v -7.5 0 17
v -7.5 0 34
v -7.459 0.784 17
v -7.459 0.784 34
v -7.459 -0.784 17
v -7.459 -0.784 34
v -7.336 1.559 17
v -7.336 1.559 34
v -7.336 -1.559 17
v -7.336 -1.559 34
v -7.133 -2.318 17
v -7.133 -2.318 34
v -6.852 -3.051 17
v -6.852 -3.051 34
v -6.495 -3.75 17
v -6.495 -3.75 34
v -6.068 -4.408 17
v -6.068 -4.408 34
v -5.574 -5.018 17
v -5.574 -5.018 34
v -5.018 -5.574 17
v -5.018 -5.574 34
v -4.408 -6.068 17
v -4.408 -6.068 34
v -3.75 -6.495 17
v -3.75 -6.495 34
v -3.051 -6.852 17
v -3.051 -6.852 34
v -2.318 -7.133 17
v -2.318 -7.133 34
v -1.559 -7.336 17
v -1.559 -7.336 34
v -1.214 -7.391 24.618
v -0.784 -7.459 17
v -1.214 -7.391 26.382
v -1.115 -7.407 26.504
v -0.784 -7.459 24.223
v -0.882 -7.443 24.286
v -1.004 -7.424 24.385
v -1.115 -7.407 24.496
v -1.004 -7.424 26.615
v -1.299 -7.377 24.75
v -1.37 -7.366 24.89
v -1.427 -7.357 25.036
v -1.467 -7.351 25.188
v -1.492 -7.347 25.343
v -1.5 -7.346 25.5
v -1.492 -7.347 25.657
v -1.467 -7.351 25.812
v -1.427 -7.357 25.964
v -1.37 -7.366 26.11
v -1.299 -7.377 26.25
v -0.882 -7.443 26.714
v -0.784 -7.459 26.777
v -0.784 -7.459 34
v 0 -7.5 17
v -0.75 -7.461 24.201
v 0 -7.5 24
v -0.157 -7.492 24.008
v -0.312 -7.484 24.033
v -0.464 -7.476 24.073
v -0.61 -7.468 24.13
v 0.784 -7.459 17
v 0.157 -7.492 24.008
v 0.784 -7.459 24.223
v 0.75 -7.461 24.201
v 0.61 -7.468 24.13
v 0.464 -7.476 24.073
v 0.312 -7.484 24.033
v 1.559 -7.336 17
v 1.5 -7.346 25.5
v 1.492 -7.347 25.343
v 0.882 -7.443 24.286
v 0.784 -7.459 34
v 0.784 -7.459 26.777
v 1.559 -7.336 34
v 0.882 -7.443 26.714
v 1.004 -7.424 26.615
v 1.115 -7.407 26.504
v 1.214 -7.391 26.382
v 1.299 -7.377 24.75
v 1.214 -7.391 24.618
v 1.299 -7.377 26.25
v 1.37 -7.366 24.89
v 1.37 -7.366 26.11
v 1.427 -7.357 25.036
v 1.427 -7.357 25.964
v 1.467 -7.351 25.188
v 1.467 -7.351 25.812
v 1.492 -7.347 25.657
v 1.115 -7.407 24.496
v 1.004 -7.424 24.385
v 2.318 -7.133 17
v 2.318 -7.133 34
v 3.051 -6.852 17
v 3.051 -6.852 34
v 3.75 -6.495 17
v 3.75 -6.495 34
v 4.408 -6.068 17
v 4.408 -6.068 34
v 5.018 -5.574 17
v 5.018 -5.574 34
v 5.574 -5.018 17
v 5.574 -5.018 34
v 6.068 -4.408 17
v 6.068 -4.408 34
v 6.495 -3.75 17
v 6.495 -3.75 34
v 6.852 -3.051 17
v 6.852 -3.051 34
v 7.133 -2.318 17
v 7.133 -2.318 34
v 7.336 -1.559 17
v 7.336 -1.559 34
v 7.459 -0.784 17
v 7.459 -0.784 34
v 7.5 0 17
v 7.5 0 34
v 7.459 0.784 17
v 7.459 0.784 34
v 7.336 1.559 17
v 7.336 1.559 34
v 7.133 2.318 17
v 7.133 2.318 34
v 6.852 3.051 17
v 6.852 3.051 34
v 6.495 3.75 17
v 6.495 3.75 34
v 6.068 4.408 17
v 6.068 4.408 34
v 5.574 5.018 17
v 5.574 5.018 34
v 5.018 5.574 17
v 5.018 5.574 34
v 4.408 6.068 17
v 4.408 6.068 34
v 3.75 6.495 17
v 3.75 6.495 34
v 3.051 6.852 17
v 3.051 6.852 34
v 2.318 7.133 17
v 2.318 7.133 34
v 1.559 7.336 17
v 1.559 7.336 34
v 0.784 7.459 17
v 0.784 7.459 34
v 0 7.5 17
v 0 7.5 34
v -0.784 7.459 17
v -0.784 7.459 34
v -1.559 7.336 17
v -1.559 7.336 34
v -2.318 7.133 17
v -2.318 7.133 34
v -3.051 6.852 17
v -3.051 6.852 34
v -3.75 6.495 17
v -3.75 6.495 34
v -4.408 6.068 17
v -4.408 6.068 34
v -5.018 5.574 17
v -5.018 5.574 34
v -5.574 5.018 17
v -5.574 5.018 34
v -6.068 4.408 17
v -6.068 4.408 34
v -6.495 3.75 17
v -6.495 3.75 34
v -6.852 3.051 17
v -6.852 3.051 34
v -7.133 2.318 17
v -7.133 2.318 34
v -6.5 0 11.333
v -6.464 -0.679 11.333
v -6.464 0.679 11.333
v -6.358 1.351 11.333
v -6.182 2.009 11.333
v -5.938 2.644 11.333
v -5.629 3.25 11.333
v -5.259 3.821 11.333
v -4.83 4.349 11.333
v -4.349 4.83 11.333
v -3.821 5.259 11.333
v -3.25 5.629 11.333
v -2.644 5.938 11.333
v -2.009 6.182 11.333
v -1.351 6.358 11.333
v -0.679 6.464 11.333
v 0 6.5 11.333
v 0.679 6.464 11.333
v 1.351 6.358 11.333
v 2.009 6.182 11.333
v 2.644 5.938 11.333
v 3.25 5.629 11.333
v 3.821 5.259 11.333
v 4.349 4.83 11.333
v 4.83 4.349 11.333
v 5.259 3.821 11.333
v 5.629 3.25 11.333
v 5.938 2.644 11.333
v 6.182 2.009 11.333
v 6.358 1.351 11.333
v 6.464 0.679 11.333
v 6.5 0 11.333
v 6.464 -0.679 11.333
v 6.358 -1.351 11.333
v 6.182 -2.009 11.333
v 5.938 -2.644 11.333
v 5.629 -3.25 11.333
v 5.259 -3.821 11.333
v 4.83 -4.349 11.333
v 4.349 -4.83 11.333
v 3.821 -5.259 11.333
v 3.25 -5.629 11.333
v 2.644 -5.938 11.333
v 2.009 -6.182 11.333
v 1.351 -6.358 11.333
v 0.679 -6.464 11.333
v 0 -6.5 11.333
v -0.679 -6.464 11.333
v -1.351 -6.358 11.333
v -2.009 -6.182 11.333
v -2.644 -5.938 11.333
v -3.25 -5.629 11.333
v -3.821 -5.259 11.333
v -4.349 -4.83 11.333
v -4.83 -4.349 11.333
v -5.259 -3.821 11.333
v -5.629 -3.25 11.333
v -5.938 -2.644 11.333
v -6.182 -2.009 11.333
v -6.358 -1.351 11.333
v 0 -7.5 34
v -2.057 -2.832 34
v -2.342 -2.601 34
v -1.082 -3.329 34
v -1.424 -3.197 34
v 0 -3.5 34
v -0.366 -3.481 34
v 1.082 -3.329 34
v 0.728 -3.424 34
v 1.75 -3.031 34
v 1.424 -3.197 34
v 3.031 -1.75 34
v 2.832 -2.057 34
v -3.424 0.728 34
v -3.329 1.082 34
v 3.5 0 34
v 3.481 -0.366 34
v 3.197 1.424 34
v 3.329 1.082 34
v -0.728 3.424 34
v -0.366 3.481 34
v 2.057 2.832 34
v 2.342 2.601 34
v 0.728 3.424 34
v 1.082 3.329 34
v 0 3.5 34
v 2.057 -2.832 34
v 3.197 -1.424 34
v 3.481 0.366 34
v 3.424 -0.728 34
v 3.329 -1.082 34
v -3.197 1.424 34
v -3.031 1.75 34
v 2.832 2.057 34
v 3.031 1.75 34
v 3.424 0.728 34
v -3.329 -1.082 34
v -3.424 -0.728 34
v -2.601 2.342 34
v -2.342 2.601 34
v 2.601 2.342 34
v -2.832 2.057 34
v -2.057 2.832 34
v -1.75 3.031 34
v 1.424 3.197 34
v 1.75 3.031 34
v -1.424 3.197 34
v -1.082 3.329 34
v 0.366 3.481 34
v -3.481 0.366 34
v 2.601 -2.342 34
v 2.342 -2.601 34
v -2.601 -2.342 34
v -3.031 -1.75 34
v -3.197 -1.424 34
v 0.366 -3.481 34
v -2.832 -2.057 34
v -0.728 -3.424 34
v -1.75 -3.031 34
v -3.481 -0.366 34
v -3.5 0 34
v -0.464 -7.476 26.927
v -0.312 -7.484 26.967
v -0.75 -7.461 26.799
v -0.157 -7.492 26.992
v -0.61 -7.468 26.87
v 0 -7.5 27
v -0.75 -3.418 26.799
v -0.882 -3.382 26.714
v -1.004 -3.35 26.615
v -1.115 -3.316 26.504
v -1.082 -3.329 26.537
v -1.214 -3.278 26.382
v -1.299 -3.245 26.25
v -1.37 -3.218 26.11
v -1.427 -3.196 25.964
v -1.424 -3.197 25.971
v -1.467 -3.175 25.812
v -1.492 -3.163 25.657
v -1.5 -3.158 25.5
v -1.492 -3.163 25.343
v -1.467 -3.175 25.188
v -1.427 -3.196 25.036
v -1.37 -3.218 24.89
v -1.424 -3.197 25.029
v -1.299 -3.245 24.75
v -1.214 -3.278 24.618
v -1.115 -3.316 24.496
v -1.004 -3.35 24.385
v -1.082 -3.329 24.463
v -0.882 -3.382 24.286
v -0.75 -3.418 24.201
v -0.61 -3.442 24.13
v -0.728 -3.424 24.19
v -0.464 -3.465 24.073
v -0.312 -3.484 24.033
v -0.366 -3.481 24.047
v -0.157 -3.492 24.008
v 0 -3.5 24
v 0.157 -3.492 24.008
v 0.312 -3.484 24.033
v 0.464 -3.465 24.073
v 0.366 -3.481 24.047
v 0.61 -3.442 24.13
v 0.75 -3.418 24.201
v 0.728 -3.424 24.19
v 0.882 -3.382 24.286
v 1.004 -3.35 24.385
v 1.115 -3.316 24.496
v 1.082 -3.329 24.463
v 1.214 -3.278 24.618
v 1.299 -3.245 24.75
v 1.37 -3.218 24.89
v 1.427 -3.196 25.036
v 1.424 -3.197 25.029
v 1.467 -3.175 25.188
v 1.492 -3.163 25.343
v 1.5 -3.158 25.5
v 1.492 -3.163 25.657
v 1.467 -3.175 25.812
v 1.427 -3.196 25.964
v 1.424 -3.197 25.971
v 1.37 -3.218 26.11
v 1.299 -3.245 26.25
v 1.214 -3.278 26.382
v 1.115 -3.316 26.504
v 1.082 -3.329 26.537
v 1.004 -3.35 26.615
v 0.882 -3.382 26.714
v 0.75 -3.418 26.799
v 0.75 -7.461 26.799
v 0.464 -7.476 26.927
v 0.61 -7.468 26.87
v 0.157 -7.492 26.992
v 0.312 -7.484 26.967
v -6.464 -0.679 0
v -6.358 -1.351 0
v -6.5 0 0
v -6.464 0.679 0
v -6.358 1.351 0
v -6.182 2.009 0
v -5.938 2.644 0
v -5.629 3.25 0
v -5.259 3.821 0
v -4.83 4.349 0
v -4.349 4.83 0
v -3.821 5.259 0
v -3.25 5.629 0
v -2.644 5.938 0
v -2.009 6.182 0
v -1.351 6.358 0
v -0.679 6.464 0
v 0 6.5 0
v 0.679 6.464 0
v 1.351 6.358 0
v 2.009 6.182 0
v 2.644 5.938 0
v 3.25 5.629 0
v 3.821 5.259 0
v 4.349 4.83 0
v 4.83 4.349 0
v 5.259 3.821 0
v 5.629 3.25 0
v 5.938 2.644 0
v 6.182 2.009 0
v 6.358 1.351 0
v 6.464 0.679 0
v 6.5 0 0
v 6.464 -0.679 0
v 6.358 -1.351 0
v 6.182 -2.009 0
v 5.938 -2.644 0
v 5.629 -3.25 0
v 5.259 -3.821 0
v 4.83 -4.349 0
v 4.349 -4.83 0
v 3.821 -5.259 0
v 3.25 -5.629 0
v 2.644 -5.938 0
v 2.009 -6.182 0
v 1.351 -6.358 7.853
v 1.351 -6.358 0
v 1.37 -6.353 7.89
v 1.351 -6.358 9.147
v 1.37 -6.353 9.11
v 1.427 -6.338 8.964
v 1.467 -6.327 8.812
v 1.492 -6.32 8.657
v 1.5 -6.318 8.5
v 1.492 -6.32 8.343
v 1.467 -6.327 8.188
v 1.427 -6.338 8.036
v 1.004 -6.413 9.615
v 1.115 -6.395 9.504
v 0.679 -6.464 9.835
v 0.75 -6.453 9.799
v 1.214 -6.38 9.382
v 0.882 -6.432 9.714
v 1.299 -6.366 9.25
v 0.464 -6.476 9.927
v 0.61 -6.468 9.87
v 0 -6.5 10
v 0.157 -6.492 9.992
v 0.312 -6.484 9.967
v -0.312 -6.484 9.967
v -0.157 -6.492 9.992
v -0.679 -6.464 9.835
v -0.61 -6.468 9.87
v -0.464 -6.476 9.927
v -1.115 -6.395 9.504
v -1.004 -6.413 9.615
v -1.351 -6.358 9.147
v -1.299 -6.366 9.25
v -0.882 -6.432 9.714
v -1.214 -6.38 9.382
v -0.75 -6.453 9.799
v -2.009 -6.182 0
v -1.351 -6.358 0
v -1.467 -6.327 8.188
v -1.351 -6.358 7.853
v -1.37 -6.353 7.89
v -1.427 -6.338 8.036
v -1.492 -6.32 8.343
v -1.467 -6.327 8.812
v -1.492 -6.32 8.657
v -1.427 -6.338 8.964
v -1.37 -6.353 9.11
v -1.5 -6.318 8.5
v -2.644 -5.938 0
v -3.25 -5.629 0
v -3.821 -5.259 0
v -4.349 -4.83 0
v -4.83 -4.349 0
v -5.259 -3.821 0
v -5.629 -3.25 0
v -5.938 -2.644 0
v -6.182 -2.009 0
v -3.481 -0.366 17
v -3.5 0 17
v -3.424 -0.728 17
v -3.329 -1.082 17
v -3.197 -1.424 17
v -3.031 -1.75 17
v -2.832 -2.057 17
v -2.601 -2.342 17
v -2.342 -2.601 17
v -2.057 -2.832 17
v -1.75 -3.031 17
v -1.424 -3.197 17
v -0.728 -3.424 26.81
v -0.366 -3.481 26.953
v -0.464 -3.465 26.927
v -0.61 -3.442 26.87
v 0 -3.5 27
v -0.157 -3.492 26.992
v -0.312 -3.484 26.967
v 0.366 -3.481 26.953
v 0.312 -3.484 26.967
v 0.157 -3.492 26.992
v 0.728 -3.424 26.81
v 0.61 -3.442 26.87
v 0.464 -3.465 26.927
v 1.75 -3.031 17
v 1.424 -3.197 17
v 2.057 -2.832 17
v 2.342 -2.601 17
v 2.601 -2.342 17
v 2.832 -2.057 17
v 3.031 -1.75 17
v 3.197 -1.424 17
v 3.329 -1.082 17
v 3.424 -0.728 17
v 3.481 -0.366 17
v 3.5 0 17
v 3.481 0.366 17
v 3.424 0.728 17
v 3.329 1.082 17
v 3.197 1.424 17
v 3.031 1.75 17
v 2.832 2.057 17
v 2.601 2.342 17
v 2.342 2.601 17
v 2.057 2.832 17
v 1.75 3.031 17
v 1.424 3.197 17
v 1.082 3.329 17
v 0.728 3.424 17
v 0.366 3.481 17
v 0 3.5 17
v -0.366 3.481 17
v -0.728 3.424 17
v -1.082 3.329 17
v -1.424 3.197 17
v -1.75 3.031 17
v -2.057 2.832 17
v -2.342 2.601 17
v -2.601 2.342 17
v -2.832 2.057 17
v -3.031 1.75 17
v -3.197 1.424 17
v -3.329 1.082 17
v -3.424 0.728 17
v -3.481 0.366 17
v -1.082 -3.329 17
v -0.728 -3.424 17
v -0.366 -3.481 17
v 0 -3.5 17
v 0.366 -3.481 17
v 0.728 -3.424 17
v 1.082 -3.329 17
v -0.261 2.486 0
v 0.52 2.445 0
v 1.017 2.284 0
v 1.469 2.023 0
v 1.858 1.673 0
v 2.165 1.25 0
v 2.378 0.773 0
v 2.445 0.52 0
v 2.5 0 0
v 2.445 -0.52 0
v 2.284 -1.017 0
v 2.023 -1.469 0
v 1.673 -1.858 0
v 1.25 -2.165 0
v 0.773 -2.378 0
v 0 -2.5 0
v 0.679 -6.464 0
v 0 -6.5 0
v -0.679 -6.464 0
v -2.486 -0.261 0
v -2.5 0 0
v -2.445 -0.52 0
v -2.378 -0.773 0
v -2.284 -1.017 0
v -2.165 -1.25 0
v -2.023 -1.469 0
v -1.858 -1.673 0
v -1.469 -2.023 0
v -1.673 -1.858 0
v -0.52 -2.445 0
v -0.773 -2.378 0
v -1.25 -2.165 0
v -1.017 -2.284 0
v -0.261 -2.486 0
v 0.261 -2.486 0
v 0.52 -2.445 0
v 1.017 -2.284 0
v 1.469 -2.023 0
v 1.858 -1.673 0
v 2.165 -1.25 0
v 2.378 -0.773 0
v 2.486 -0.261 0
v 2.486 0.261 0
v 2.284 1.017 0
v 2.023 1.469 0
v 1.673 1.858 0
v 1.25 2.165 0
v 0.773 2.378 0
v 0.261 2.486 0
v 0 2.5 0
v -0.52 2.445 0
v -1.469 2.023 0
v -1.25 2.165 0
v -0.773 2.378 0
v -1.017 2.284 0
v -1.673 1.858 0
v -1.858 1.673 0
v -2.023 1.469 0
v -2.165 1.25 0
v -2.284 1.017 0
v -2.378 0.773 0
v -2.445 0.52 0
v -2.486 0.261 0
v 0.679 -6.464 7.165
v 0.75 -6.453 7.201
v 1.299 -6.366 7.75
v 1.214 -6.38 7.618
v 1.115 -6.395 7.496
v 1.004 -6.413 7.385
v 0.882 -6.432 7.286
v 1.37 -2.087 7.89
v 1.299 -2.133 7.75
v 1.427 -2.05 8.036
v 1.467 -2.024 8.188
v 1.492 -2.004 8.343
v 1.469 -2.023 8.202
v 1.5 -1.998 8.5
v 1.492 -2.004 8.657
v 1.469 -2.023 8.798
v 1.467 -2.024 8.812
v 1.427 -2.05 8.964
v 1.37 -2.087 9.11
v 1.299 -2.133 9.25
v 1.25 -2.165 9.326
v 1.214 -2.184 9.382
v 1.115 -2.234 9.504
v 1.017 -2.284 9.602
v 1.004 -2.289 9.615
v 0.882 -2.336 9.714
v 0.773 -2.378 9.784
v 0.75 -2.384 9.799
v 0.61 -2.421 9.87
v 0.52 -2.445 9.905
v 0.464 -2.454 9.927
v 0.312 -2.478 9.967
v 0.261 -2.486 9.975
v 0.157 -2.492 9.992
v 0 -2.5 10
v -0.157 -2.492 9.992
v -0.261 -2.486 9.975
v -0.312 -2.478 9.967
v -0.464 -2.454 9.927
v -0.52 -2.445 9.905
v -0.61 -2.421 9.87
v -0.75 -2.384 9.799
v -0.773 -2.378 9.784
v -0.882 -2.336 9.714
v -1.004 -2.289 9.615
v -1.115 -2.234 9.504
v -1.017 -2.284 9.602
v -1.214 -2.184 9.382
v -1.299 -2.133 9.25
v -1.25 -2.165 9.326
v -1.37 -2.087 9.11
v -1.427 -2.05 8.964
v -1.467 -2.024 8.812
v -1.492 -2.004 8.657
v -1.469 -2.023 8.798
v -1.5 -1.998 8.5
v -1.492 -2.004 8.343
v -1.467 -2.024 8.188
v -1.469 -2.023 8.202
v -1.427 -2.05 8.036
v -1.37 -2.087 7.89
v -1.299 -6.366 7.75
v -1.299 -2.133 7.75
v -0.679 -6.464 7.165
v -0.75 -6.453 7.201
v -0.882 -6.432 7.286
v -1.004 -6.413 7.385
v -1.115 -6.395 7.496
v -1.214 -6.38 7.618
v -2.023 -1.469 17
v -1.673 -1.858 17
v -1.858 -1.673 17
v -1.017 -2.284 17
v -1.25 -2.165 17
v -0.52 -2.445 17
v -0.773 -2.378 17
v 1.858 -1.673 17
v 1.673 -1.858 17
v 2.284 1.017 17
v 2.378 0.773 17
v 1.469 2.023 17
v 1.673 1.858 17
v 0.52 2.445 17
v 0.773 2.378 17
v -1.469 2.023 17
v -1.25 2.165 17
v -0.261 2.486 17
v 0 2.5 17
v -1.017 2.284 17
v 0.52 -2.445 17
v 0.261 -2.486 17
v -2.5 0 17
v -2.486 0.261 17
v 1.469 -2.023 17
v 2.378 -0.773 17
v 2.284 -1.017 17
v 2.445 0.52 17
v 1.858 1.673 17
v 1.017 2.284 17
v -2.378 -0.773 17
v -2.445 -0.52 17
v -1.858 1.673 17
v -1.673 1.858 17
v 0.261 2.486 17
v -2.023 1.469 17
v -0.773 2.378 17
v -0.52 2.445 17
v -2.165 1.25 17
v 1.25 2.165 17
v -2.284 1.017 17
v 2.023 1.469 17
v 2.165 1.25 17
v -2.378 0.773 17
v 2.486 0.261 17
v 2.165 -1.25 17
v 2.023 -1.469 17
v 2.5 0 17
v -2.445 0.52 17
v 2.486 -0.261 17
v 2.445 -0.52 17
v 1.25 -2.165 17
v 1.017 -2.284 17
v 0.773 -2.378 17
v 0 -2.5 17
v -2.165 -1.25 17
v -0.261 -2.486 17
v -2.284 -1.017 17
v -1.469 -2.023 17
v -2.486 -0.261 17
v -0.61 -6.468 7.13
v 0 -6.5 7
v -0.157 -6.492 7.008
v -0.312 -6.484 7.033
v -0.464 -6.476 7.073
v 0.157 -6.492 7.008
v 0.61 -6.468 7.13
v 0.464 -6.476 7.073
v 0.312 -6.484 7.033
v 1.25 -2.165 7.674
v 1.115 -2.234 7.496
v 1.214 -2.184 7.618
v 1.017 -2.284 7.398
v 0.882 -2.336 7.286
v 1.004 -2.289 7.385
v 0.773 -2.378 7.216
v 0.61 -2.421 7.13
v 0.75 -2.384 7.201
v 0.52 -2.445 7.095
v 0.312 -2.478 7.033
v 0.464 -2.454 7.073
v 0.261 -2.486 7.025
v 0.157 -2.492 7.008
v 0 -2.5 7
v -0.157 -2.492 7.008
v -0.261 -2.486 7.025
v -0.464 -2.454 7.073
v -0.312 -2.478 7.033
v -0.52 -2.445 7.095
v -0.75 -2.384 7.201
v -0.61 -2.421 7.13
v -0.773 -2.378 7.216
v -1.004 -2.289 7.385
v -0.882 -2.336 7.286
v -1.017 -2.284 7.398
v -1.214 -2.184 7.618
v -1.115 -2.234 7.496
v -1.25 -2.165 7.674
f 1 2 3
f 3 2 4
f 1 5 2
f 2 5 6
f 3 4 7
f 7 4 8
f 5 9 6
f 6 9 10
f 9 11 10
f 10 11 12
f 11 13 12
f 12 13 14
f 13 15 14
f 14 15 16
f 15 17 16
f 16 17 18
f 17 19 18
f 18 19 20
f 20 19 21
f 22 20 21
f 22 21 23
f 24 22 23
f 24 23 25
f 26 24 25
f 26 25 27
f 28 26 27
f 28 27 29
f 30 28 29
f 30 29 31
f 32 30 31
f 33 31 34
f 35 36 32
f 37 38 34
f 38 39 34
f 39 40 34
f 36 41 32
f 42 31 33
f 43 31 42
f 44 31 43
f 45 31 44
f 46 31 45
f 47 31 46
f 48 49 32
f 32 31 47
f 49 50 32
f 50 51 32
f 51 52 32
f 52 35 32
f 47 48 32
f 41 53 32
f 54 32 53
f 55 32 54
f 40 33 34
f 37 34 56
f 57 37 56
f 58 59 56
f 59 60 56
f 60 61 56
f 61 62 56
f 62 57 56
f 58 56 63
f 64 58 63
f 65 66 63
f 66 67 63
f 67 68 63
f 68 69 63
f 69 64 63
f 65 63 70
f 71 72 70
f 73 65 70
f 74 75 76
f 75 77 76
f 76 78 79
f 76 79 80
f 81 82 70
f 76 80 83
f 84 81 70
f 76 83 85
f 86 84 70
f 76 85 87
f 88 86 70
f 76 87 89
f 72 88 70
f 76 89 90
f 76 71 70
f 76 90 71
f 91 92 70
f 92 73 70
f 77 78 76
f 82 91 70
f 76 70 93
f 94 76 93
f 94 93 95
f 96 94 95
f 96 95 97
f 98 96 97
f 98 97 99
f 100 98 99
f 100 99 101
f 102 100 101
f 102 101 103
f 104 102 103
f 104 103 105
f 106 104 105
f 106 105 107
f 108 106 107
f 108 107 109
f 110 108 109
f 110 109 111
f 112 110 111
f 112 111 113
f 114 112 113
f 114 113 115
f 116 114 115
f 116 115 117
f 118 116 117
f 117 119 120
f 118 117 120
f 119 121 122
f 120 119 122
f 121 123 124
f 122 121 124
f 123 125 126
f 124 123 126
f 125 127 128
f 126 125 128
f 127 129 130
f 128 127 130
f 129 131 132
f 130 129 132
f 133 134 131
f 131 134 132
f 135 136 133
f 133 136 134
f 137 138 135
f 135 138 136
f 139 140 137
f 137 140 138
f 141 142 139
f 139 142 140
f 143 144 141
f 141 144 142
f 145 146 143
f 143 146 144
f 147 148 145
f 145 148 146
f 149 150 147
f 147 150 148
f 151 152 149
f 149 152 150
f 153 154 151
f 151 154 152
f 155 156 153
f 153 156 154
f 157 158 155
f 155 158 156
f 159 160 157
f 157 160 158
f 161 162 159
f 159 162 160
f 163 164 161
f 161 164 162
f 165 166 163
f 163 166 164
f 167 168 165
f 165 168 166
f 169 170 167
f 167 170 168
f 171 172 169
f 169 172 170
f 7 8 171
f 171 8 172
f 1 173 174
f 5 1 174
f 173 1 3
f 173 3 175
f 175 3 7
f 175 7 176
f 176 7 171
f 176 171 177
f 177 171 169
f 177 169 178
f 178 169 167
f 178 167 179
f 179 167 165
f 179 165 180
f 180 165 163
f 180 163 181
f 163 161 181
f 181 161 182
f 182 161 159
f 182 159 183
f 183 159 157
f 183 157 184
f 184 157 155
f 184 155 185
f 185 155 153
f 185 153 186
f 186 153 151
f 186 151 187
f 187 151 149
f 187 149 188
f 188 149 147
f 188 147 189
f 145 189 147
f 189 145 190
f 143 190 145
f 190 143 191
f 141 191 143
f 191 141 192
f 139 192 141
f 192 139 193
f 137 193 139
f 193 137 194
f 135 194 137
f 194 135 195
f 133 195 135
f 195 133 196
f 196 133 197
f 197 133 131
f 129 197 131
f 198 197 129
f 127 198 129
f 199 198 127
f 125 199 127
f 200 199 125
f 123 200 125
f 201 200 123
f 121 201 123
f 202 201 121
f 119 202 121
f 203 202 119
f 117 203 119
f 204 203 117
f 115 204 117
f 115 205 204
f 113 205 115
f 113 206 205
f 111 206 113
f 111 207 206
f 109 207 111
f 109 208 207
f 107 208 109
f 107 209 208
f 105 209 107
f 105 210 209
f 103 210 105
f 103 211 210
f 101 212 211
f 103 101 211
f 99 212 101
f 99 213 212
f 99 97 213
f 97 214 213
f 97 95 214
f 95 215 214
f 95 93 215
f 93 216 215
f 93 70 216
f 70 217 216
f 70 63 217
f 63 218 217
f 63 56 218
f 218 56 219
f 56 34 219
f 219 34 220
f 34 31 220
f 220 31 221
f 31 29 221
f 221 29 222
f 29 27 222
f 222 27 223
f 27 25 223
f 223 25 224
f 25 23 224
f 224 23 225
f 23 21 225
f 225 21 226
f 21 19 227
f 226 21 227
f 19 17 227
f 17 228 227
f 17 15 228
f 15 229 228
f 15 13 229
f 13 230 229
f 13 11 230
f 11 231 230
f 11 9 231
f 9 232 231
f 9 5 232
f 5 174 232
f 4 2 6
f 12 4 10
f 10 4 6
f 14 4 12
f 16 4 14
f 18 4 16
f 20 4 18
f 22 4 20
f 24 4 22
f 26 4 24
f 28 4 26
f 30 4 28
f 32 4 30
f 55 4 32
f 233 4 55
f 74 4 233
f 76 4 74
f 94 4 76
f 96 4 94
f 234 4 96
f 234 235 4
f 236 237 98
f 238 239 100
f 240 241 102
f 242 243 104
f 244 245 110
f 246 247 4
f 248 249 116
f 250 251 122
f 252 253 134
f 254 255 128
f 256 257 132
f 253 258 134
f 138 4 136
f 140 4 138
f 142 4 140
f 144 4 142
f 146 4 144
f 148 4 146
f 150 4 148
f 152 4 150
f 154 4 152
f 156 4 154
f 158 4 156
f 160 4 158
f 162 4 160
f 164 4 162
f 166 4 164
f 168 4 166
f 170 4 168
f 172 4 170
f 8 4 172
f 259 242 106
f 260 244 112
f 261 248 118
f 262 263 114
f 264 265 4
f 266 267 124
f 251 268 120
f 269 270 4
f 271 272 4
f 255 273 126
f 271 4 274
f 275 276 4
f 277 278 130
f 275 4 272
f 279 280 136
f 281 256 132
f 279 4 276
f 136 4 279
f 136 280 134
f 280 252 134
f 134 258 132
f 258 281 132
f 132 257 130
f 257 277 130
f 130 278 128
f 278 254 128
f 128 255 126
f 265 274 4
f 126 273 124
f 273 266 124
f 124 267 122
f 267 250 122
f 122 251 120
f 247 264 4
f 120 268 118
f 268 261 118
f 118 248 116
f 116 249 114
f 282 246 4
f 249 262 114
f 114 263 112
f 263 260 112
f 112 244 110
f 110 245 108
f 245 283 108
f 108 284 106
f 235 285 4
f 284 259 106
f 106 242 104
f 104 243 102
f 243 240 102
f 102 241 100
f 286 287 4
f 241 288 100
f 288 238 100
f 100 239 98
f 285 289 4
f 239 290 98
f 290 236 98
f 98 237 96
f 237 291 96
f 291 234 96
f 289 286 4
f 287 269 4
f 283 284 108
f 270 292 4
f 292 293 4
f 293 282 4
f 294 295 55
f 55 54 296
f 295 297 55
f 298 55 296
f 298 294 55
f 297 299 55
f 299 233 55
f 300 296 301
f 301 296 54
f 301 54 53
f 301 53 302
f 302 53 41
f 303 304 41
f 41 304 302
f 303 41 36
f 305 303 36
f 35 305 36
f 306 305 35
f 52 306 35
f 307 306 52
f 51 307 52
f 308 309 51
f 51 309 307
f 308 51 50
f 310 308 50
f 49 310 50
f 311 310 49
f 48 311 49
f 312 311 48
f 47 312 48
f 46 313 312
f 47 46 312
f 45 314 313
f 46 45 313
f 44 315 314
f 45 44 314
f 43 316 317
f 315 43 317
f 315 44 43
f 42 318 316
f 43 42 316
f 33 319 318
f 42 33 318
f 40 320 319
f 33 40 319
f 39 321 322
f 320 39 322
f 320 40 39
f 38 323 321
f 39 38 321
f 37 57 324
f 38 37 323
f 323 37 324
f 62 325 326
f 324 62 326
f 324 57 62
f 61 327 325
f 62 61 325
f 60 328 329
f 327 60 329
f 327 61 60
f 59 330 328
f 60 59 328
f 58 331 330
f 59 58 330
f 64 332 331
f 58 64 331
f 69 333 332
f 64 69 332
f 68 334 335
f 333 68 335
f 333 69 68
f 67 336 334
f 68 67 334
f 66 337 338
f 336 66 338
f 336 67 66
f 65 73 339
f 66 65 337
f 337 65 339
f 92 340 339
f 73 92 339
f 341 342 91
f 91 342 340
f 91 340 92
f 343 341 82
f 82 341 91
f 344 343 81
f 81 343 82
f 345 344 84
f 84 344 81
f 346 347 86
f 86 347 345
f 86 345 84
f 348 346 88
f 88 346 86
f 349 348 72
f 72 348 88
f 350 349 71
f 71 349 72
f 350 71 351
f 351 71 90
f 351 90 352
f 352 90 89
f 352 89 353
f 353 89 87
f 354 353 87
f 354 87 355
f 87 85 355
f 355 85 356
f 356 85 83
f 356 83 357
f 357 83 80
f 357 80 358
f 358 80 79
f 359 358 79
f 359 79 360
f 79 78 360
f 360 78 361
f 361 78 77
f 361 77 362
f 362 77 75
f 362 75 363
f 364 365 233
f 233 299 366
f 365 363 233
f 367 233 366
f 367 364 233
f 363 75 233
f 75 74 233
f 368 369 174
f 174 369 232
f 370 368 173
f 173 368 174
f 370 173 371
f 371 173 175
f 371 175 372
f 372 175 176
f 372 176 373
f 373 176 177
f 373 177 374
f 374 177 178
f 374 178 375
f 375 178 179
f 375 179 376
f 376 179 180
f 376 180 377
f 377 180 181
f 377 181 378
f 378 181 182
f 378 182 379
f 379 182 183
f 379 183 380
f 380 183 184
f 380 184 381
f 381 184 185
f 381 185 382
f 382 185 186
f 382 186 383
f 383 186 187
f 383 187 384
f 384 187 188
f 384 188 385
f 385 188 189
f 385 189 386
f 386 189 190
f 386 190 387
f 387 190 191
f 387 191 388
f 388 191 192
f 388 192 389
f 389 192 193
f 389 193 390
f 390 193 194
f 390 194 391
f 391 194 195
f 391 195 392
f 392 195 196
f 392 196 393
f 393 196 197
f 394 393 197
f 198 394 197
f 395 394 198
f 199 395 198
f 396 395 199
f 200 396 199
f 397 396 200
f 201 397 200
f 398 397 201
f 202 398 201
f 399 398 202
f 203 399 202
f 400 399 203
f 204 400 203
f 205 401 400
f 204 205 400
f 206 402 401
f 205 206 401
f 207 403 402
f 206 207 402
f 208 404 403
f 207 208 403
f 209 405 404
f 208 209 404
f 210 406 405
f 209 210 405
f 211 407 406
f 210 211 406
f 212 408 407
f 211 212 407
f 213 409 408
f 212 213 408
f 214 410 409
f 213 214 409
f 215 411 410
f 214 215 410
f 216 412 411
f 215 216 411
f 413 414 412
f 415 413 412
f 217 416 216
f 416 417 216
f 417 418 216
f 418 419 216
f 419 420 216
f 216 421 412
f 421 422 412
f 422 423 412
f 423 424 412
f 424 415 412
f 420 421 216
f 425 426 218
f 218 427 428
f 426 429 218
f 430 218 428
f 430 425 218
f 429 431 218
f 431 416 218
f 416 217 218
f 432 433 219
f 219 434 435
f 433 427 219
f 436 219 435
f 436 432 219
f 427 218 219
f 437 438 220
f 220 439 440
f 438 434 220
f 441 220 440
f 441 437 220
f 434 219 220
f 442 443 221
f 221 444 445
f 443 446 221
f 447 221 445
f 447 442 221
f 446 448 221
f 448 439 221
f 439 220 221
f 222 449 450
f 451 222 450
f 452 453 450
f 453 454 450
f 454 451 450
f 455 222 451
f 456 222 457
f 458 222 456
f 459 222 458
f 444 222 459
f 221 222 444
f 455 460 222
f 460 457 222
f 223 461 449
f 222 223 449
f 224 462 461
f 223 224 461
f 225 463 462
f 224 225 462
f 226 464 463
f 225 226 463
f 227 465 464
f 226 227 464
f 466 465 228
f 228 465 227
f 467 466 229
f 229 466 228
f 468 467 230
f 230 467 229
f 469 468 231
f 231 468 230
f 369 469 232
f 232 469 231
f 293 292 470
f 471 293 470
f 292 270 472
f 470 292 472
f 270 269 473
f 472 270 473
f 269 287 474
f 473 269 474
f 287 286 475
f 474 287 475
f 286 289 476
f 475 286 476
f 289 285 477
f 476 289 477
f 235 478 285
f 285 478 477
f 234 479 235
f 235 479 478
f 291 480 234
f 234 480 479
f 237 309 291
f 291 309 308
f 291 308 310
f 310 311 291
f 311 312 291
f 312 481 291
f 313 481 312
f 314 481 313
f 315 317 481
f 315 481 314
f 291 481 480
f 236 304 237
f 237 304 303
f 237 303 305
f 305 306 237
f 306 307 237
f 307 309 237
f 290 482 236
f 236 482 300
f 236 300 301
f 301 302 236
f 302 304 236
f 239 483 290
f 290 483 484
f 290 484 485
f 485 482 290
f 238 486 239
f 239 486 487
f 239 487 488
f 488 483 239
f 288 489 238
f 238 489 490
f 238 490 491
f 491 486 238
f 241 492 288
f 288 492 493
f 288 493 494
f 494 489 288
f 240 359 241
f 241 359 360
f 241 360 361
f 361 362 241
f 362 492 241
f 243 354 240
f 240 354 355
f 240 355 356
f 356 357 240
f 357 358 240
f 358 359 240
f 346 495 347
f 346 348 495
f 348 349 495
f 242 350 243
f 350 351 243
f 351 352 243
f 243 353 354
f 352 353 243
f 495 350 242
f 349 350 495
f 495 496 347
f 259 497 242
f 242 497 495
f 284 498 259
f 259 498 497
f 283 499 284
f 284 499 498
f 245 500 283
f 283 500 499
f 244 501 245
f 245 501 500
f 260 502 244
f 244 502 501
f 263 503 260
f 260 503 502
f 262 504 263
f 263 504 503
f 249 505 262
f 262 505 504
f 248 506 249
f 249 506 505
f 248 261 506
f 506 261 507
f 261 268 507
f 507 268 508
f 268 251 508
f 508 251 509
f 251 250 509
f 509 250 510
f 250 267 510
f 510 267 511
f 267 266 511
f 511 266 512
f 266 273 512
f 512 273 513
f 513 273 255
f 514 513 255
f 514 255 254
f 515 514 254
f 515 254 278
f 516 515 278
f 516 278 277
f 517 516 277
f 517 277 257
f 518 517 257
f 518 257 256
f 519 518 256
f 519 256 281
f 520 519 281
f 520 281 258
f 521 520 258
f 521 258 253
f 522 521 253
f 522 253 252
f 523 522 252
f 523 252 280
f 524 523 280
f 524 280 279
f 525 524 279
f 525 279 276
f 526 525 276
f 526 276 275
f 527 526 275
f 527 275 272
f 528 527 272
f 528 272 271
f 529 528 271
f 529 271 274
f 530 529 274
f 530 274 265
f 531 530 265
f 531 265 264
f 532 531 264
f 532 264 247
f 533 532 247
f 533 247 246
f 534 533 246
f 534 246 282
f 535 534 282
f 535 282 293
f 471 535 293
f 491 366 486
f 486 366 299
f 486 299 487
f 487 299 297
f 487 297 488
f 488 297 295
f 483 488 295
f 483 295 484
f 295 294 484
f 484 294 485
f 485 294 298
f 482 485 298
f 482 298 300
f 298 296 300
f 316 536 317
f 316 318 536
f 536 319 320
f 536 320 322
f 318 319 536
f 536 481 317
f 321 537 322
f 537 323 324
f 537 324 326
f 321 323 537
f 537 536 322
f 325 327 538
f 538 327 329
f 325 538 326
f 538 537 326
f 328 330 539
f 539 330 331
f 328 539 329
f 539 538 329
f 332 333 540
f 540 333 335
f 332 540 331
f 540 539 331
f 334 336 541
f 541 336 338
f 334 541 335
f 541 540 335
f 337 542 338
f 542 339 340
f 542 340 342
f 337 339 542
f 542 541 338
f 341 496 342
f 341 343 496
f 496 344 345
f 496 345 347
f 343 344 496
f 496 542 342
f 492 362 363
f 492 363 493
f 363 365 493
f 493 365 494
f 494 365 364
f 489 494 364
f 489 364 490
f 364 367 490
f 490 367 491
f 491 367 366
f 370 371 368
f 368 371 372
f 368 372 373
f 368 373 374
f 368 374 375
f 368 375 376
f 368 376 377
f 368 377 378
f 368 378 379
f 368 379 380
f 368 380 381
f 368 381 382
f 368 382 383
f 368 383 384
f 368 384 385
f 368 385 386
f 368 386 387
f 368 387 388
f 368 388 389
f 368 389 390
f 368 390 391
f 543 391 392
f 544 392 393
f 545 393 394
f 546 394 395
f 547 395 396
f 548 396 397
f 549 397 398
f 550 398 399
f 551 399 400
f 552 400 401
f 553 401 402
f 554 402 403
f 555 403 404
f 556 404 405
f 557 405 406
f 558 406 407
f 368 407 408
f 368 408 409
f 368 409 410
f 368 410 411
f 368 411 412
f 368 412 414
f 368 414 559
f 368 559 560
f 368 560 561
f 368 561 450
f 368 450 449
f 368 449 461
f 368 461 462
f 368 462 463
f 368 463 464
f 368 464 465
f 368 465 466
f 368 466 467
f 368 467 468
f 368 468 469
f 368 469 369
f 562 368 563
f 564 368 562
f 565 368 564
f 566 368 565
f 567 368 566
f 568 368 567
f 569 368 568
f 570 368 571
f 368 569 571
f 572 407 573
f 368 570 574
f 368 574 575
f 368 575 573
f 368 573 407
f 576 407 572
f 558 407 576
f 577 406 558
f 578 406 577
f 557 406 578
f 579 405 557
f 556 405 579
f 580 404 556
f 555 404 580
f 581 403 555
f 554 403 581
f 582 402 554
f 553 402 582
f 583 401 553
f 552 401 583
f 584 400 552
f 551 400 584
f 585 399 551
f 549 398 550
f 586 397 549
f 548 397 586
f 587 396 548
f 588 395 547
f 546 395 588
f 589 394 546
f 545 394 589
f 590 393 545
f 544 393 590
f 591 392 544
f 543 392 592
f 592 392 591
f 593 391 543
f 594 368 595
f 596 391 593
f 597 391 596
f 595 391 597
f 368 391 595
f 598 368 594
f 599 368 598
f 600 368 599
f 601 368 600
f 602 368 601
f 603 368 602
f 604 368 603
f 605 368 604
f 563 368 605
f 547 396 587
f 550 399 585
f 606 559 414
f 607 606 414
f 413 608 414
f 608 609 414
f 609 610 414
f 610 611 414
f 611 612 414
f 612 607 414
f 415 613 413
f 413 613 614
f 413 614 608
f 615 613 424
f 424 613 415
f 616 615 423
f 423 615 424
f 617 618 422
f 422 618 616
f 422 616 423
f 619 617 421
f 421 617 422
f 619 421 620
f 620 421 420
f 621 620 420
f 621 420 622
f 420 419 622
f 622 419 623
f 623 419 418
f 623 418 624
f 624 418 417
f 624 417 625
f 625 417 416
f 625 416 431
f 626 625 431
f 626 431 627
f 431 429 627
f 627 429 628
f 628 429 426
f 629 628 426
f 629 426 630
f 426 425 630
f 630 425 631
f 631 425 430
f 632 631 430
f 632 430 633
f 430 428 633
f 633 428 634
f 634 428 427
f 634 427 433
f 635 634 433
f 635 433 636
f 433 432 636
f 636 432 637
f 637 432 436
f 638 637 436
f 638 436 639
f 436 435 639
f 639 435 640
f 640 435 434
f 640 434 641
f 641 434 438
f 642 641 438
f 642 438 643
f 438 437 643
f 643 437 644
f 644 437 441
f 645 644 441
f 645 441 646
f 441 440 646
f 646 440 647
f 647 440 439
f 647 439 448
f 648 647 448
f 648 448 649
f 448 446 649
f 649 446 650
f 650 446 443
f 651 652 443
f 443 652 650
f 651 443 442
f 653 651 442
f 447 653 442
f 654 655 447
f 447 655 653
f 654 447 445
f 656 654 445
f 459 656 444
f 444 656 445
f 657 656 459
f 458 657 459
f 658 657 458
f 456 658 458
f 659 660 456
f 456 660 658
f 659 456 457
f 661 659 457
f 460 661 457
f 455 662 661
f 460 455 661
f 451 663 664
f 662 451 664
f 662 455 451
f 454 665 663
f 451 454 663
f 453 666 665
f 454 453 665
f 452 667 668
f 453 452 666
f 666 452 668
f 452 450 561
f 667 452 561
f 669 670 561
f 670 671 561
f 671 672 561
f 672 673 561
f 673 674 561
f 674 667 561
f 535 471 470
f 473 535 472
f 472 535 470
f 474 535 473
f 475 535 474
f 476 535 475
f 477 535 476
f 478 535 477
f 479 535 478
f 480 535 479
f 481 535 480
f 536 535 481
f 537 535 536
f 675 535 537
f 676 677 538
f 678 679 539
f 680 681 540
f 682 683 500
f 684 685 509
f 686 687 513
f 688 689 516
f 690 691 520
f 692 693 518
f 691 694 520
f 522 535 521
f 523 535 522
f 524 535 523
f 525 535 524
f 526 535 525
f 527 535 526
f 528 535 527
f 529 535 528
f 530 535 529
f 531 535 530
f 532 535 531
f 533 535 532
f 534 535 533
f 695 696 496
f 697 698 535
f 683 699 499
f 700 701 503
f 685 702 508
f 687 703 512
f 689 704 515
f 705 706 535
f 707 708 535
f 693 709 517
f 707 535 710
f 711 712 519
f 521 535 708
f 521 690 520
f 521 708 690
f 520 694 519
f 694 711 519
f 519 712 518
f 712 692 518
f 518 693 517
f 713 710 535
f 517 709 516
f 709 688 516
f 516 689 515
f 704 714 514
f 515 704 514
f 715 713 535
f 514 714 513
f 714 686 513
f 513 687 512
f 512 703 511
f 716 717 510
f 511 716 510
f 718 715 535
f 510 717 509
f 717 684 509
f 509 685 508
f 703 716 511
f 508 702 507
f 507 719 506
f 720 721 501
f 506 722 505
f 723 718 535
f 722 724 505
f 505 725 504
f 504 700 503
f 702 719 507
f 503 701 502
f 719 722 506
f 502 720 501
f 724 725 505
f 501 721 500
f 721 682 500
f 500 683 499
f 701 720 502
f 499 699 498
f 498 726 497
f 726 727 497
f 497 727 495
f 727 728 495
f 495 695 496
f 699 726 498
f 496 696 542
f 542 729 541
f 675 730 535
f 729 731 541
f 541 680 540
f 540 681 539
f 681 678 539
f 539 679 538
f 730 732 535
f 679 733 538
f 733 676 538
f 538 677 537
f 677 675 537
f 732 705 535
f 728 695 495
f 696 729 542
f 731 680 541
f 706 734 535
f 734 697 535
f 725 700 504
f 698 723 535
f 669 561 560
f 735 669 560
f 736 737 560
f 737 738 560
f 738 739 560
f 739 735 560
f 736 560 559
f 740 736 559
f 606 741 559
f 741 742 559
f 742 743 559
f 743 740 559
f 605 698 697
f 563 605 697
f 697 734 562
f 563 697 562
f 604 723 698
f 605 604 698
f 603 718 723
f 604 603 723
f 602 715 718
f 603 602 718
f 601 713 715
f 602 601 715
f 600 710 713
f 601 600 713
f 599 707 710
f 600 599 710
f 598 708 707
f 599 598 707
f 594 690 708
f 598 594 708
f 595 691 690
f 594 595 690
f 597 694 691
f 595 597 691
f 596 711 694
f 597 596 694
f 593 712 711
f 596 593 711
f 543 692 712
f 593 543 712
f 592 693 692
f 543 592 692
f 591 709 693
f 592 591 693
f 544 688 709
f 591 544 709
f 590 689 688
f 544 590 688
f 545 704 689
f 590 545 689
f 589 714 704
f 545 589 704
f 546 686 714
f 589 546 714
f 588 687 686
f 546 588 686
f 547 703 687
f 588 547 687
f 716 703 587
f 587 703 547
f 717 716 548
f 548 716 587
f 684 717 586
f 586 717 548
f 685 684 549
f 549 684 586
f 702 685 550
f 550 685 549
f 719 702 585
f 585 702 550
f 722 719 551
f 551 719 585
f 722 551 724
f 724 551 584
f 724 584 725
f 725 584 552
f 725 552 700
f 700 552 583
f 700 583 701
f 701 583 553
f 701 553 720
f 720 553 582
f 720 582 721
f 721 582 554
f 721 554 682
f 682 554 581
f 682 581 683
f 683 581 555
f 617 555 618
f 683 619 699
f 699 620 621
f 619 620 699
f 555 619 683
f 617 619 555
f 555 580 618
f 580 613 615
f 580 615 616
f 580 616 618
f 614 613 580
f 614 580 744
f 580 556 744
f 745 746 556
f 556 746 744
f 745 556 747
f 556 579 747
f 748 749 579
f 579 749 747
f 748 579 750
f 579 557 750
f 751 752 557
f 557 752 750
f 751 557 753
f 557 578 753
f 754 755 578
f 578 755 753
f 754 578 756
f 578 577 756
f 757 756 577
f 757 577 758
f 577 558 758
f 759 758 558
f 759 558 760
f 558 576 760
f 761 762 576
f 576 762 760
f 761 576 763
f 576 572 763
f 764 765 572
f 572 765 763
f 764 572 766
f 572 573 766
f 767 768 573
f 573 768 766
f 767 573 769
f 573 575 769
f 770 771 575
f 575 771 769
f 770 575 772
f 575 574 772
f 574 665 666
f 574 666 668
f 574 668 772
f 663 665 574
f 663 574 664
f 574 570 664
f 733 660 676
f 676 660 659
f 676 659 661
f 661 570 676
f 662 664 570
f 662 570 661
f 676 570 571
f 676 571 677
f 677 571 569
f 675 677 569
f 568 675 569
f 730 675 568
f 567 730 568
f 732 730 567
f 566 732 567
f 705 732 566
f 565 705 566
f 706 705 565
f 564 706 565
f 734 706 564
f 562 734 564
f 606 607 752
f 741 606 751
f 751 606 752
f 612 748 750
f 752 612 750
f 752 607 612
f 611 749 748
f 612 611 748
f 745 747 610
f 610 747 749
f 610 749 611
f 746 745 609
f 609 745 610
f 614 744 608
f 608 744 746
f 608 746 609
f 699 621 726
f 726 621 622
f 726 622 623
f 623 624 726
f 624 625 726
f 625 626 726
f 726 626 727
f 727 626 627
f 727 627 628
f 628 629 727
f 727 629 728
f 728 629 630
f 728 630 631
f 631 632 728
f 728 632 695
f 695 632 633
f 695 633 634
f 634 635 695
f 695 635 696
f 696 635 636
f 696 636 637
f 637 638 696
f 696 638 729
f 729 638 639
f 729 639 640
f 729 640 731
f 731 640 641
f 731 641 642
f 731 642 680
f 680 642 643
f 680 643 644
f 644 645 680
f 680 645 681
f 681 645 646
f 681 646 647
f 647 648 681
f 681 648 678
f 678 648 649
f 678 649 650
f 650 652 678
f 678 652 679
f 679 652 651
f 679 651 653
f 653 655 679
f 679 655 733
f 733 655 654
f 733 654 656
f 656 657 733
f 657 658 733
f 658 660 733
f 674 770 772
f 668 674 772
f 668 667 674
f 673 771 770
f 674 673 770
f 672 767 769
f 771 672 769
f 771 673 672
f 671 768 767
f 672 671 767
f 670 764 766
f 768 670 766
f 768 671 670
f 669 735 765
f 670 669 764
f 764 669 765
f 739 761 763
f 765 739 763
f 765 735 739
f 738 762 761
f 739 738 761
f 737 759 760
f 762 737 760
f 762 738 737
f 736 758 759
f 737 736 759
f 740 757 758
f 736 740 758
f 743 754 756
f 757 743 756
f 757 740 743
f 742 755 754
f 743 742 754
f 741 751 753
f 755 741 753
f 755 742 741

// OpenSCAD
pieceheight = 34;
bottomdia = 5;
topdia = 7;
wall = 4;
setscrewdia=3;
$fn =60;

difference(){
	union(){
	cylinder(r=bottomdia/2+wall, h= pieceheight/2);
	translate([0,0,pieceheight/2])cylinder(r=topdia/2+wall, h= pieceheight/2);
	translate([0,0,pieceheight/3])cylinder(r2=topdia/2+wall, r1=bottomdia/2+wall, h= pieceheight/6);
	}
cylinder(r=bottomdia/2, h= pieceheight/2);
translate([0,0,pieceheight/2])cylinder(r=topdia/2, h= pieceheight/2);
translate([0,0,pieceheight/4])rotate([90,0,0])cylinder(r=setscrewdia/2, h= pieceheight/2);
translate([0,0,pieceheight*0.75])rotate([90,0,0])cylinder(r=setscrewdia/2, h= pieceheight/2);
}
